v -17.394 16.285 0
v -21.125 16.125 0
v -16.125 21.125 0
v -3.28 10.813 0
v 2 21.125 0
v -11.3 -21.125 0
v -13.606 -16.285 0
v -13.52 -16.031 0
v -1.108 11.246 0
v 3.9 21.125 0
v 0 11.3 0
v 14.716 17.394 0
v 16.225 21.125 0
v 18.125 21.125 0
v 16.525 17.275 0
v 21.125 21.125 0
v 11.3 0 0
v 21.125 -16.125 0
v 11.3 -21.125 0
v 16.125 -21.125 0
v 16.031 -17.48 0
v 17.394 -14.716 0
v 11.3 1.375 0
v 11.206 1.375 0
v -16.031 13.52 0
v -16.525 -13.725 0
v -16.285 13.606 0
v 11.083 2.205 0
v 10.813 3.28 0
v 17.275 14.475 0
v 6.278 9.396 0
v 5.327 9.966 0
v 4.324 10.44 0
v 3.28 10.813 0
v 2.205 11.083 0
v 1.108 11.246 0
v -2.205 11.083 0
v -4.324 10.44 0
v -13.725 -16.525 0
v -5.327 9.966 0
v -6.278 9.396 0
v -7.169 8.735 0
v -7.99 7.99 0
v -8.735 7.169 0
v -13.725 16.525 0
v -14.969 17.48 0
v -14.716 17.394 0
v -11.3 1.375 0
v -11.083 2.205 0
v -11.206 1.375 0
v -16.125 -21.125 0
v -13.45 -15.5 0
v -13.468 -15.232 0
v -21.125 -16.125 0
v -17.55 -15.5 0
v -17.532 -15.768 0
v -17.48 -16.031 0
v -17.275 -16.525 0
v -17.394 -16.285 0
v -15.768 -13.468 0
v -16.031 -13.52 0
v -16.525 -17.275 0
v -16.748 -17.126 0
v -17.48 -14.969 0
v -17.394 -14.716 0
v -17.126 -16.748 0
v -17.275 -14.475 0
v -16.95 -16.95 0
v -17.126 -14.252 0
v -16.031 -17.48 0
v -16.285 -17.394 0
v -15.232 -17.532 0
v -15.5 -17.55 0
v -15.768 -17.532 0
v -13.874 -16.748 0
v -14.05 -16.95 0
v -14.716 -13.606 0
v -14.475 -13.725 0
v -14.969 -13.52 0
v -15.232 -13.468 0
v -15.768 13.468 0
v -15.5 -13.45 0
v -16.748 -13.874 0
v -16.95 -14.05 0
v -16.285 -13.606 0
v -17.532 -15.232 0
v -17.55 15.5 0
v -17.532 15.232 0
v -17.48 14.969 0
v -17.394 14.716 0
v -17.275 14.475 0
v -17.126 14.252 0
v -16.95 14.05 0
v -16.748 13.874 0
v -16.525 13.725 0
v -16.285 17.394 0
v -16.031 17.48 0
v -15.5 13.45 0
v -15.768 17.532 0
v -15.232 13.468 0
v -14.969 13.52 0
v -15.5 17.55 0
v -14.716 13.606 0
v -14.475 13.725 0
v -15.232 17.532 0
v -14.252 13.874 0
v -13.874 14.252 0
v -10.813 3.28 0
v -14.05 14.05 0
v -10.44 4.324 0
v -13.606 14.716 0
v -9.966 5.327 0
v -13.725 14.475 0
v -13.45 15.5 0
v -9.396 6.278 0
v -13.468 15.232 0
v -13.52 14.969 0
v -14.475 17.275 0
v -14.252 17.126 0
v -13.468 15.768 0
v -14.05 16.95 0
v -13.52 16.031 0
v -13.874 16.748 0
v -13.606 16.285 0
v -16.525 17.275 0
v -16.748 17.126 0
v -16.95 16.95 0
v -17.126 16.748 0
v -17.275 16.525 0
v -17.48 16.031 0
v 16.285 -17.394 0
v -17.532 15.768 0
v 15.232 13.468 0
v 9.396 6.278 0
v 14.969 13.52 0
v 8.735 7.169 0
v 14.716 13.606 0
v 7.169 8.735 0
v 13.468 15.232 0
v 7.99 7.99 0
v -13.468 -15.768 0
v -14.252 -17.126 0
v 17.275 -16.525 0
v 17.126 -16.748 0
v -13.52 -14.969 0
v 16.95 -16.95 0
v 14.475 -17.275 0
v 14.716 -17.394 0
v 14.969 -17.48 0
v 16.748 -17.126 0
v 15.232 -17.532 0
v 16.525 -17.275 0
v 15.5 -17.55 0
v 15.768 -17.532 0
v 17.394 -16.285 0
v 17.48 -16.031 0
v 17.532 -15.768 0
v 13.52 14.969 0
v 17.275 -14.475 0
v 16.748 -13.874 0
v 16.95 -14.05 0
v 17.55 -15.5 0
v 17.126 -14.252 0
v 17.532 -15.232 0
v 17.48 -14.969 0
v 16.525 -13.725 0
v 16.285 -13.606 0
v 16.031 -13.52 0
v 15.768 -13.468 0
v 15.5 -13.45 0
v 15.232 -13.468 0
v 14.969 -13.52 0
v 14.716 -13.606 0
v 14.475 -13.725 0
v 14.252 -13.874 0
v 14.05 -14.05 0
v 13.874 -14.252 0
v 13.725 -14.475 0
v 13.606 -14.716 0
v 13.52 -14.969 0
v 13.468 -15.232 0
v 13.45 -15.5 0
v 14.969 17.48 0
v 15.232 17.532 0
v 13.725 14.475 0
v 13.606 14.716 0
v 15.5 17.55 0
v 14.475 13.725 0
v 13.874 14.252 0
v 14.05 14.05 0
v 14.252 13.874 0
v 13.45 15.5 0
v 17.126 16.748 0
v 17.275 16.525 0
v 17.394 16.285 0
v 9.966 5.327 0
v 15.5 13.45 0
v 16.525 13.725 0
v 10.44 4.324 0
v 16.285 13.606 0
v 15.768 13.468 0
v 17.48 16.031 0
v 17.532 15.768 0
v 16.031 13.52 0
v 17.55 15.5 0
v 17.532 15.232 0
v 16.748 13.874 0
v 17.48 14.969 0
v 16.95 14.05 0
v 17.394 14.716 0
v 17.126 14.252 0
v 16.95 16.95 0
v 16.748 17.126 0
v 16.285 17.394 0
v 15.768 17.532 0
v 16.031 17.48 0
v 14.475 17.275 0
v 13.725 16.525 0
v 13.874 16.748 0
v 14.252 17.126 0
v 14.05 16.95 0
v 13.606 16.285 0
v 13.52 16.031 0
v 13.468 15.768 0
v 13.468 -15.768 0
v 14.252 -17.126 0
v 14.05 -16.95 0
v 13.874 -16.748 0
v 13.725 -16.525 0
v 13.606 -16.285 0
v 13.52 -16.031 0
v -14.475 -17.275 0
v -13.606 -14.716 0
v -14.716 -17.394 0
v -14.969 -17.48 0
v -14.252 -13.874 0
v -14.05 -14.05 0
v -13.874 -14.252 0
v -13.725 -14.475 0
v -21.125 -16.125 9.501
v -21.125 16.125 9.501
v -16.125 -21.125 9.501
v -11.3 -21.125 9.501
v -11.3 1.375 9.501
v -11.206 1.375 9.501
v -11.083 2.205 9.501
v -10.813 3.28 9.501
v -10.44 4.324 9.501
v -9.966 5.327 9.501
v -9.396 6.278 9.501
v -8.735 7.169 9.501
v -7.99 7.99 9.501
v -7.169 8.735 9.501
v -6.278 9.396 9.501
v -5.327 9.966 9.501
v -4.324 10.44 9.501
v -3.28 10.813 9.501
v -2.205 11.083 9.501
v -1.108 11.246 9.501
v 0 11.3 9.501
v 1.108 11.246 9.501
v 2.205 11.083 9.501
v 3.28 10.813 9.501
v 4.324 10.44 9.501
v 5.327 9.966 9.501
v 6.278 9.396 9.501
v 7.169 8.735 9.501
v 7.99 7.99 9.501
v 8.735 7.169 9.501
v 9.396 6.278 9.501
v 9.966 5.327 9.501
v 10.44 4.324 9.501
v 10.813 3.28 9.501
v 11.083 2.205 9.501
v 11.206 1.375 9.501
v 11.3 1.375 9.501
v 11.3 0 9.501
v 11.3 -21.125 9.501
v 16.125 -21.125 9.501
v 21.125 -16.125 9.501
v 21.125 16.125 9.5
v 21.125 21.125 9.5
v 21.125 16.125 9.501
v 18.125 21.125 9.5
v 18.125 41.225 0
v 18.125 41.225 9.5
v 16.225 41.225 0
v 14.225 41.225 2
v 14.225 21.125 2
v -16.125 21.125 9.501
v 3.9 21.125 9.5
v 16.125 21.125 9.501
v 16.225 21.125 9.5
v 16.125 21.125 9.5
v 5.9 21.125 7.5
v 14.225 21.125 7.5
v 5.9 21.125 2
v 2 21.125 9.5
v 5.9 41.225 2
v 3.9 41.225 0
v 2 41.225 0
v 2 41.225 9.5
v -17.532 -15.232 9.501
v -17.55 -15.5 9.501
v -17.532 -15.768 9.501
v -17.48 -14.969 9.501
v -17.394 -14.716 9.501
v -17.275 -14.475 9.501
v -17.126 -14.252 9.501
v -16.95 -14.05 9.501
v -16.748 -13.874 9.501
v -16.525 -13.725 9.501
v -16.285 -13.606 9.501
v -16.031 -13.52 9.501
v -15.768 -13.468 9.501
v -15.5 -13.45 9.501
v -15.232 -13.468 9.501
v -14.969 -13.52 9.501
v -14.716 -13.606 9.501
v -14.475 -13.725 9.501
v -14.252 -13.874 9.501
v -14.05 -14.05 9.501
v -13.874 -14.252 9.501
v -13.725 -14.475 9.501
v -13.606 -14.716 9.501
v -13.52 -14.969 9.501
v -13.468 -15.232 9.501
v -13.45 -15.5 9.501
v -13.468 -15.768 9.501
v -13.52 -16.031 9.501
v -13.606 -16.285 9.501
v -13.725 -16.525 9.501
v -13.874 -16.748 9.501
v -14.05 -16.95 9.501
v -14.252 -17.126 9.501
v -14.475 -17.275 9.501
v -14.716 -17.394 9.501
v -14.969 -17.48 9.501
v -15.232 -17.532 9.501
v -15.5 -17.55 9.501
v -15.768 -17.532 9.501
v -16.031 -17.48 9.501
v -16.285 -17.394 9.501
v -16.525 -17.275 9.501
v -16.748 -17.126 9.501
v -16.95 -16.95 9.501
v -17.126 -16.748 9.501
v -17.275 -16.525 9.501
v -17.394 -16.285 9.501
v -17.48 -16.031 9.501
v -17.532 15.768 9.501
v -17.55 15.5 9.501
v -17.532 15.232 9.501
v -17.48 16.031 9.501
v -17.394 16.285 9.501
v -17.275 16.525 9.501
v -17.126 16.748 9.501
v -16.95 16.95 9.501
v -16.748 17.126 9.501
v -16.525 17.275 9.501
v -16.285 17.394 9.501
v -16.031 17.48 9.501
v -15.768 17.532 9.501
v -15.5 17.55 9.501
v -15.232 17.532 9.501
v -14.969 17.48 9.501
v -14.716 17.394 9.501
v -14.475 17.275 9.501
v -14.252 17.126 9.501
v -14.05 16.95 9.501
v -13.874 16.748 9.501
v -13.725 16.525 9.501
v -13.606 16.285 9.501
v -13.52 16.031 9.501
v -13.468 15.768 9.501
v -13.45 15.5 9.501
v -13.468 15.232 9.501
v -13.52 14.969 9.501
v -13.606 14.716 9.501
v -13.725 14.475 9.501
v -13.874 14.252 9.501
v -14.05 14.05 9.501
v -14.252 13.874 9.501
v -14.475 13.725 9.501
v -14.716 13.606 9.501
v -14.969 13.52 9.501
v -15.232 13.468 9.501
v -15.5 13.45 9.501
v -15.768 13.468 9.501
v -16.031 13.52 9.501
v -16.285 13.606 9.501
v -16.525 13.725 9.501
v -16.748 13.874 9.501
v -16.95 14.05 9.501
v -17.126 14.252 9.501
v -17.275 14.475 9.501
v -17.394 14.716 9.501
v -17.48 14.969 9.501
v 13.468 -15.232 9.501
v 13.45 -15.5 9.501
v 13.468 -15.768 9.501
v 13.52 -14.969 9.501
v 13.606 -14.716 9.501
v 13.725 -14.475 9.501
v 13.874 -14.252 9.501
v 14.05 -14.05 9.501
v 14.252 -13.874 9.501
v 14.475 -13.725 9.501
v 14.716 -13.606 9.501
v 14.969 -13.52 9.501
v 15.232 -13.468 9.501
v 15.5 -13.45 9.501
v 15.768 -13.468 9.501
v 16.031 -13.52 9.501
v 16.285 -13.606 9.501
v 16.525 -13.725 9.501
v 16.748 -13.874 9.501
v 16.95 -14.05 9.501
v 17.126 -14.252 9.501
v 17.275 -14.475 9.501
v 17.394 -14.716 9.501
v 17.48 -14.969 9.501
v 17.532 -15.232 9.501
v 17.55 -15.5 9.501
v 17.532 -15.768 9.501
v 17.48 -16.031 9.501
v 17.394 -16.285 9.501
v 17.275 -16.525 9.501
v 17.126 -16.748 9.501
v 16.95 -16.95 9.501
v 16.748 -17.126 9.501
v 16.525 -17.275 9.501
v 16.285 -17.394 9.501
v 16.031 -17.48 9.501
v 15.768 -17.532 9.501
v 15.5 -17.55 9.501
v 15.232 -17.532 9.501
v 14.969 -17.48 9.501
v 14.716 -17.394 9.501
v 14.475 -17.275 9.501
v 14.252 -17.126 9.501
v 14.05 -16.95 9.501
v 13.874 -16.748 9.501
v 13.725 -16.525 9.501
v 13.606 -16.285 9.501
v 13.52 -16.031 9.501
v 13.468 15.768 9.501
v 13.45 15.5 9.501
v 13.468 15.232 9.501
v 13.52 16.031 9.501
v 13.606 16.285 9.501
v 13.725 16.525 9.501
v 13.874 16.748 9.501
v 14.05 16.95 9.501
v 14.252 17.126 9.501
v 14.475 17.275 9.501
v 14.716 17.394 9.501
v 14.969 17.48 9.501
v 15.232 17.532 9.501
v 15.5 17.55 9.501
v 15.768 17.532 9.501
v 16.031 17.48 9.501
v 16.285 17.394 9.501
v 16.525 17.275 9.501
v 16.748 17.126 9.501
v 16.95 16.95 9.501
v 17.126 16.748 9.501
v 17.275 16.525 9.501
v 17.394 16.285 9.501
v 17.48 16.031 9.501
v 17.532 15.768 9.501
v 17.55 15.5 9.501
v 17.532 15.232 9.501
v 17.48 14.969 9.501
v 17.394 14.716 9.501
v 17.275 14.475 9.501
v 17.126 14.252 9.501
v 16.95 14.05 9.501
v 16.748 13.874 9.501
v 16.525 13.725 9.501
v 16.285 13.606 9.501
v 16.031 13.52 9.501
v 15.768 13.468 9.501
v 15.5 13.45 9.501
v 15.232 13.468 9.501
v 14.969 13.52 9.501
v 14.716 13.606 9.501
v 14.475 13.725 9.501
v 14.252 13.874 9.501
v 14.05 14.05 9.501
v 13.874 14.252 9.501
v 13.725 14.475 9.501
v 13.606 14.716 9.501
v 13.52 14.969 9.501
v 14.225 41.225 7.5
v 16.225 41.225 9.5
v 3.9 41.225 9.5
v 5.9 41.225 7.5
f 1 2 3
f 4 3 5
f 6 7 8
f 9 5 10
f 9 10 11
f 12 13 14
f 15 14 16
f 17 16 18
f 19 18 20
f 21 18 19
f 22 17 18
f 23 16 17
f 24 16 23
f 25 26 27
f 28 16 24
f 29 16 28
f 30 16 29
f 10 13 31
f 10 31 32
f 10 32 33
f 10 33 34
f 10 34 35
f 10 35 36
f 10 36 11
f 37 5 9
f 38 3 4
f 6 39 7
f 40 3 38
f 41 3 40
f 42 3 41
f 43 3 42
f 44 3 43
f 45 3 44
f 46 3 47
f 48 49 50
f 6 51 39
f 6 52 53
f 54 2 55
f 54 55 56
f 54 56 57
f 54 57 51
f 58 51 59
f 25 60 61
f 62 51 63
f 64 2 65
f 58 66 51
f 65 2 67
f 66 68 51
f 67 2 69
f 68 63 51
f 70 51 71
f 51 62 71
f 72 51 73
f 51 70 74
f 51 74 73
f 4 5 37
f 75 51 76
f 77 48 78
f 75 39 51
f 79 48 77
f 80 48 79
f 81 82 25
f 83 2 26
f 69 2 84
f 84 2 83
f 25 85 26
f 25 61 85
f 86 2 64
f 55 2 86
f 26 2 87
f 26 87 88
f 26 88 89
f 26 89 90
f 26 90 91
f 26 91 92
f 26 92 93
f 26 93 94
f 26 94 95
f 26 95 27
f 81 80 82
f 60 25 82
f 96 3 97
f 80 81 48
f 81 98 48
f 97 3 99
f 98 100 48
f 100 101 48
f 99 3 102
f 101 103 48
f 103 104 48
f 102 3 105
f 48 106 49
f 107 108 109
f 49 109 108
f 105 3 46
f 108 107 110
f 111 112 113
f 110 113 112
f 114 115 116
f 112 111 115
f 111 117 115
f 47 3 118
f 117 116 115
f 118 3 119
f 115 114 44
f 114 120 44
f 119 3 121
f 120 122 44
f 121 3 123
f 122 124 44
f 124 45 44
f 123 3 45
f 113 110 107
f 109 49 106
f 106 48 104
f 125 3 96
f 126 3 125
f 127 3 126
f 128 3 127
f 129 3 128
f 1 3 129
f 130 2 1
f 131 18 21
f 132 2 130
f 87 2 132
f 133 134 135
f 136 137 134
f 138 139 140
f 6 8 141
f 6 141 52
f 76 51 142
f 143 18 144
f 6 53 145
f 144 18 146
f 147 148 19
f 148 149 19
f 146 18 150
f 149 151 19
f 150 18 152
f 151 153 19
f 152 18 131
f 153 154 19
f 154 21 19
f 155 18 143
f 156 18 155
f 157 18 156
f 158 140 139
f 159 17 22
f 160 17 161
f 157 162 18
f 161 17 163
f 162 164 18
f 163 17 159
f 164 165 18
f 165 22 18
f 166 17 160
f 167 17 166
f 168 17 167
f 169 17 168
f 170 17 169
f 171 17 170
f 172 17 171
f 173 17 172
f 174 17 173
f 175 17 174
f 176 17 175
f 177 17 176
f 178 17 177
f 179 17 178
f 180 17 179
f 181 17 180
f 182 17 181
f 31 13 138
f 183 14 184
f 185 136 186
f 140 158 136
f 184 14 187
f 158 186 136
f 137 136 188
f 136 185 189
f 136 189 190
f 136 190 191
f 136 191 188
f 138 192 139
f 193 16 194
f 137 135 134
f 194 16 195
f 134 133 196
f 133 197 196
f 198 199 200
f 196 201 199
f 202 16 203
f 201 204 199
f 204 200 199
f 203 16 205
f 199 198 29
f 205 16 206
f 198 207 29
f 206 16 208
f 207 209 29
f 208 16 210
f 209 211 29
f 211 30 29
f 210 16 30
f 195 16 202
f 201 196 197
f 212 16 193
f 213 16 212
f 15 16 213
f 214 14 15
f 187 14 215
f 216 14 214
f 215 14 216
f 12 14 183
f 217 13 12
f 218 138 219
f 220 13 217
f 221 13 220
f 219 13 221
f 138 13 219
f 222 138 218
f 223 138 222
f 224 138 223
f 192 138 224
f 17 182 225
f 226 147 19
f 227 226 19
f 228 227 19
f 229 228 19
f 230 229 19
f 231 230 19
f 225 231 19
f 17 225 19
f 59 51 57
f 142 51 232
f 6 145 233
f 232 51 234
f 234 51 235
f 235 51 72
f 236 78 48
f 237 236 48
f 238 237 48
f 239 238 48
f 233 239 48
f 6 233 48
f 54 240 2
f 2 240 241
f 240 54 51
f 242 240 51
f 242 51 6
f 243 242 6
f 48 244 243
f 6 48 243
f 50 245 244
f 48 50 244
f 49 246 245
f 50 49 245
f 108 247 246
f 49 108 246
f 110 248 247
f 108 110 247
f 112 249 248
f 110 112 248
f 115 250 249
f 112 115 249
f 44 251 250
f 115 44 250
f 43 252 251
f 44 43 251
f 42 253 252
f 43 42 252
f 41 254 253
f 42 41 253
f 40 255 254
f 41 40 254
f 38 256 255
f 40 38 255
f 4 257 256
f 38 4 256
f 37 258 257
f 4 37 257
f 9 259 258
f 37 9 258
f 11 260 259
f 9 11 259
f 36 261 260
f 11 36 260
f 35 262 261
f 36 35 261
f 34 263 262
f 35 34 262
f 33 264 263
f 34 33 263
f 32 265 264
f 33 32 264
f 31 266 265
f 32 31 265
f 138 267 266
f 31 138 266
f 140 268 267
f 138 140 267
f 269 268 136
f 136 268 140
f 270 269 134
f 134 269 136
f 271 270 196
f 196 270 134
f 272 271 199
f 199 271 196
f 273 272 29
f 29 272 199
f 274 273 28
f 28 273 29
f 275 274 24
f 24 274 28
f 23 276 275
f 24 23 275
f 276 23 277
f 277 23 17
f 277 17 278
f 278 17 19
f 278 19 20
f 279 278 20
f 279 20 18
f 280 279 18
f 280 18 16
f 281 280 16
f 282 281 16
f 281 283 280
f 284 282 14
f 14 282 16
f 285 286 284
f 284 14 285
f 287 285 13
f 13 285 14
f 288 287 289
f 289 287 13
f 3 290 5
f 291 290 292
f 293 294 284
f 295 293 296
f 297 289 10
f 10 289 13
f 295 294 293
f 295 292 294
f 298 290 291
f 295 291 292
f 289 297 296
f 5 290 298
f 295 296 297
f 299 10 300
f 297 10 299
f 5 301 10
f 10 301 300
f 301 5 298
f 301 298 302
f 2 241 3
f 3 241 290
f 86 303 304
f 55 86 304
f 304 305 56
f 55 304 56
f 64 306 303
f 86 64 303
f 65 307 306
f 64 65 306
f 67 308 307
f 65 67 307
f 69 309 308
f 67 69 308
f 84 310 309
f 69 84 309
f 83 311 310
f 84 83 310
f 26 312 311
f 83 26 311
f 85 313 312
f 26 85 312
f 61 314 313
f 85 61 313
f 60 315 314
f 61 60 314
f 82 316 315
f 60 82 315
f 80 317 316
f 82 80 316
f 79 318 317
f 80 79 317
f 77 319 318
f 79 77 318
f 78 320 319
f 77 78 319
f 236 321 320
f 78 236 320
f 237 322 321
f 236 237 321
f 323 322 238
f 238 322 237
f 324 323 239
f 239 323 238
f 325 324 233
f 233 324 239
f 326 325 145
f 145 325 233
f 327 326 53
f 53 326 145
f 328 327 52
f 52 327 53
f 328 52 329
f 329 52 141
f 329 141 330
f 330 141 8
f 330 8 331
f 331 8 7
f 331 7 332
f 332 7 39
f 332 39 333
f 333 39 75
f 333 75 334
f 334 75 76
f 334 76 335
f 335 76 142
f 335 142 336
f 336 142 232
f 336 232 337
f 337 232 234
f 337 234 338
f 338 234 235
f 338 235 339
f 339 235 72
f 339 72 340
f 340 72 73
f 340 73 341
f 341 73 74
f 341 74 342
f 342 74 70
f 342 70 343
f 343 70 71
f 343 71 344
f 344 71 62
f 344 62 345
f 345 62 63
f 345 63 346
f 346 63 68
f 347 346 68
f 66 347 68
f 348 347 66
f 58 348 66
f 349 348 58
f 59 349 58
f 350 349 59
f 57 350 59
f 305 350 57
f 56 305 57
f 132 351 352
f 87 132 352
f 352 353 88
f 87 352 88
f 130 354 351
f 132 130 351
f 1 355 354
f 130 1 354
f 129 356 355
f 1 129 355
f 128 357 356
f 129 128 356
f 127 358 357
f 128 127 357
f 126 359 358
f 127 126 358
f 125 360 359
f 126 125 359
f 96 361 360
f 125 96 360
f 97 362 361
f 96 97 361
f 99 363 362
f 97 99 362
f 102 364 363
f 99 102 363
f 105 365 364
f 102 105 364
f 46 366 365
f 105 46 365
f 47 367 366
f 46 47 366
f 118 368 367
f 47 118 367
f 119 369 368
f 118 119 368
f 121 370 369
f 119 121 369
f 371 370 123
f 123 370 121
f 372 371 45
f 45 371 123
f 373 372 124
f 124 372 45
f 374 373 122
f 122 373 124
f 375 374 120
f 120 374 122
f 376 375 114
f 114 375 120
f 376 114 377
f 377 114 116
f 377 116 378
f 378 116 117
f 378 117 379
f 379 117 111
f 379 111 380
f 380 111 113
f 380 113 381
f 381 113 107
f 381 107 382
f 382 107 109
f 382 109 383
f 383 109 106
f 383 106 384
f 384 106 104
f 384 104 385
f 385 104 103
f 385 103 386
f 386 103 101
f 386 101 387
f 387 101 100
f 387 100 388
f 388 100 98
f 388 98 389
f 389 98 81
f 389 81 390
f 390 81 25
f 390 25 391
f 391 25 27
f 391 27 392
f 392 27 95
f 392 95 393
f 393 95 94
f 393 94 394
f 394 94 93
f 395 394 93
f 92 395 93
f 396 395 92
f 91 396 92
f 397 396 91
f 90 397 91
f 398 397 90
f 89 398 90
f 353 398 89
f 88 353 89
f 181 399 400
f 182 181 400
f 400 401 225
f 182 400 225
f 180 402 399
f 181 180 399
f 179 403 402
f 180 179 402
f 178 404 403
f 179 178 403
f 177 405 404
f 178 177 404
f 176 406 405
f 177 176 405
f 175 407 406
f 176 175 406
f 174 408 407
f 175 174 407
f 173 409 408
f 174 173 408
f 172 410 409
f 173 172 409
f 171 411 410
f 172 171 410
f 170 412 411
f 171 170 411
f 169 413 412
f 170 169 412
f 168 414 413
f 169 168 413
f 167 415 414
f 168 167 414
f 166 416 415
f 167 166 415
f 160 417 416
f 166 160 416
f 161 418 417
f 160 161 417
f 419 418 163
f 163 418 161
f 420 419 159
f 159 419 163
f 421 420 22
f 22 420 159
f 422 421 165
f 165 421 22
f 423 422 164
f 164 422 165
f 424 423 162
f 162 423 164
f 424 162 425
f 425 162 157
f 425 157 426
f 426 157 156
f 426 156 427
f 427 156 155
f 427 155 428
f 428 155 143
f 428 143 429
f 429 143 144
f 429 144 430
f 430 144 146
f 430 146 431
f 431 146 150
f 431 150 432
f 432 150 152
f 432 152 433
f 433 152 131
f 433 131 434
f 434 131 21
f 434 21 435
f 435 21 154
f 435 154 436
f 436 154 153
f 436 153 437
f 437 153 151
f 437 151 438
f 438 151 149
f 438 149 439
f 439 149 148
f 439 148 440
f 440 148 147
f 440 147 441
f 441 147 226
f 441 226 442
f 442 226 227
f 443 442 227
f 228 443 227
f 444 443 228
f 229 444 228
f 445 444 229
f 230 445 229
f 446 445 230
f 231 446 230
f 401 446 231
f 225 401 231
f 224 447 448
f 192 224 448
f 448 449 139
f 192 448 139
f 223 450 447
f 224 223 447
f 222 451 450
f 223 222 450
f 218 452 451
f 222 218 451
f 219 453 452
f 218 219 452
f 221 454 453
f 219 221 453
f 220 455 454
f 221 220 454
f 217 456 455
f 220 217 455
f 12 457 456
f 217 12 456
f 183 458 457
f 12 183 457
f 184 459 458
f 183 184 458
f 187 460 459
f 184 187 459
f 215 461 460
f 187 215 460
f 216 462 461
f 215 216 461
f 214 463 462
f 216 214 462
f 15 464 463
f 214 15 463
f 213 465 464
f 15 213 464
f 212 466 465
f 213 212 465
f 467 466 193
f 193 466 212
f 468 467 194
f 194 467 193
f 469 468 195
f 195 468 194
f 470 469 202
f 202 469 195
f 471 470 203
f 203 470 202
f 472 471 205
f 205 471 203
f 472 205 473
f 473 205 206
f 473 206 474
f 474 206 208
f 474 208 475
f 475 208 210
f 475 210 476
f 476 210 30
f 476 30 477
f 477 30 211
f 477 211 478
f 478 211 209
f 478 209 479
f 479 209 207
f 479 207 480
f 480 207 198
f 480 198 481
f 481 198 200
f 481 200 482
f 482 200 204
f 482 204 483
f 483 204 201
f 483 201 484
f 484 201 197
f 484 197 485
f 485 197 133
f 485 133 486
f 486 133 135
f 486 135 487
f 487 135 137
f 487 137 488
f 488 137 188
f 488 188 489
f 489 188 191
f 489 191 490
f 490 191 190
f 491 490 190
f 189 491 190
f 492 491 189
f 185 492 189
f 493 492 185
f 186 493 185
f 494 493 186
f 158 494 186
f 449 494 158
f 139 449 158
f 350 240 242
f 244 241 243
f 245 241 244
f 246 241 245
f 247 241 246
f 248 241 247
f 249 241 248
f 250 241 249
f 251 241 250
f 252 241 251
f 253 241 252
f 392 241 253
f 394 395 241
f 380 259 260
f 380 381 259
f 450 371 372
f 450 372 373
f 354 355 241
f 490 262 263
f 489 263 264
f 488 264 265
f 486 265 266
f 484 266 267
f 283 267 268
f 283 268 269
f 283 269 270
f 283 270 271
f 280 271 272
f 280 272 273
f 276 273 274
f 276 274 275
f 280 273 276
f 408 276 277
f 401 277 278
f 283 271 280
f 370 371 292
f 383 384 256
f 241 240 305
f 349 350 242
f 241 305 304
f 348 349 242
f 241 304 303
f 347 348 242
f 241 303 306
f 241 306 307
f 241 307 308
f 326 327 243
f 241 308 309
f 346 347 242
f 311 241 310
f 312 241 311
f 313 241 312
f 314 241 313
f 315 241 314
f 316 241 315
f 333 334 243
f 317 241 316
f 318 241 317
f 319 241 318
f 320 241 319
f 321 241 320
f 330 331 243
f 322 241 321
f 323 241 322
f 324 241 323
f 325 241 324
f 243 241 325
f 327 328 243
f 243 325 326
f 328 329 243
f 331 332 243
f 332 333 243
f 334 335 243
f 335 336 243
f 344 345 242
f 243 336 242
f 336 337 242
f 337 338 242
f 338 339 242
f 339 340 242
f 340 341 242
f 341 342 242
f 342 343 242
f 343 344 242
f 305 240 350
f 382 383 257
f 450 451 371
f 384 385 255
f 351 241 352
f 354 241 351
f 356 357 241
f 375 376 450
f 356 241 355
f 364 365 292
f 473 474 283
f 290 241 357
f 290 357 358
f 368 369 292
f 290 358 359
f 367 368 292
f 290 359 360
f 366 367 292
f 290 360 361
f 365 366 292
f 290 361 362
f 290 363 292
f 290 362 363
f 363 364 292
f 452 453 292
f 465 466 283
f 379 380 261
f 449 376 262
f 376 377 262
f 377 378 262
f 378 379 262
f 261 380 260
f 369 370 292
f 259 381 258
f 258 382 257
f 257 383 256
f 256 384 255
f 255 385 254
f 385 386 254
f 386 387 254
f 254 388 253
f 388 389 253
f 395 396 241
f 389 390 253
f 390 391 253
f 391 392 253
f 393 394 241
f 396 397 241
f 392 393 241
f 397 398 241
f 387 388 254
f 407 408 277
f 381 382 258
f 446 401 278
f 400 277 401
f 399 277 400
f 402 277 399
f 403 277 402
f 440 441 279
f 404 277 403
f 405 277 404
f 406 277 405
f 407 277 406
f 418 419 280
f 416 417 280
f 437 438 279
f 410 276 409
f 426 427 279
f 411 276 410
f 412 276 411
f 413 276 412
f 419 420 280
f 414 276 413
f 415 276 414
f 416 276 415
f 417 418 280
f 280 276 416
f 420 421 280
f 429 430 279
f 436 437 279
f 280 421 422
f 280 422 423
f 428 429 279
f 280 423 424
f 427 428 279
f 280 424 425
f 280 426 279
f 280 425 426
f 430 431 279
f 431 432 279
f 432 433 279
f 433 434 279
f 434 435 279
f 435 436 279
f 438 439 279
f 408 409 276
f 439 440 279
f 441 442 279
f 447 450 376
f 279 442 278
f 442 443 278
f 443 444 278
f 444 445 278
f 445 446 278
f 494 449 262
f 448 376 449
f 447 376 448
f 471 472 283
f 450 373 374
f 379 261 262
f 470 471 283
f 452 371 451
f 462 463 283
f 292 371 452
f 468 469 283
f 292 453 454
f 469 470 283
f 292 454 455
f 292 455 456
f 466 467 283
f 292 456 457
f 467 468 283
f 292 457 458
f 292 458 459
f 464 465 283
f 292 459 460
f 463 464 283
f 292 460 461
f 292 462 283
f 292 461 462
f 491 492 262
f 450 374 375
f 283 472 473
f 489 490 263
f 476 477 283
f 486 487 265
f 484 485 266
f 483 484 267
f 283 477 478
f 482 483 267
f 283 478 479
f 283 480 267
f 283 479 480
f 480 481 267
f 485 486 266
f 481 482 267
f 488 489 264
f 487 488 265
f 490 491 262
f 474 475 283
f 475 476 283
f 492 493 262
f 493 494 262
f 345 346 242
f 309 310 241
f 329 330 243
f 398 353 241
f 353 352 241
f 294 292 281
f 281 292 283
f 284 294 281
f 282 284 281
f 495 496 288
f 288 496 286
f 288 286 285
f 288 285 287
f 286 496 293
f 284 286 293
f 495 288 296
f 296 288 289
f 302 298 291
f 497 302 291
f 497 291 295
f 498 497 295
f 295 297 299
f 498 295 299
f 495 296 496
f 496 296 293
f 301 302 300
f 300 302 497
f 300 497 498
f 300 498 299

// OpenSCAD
// file: scad/tapercube.scad
module tapercube(width=10, height=10, depth=10, taper=3.0) {
  plane = 0.001;
  hull() {
    translate([taper/2,taper/2,0])
      cube([width-taper, height-taper, plane]);
    translate([0,0,taper/2]) {
      translate([0,taper/2])
        cube([width, height-taper, plane]);
      translate([taper/2,0])
        cube([width-taper, height, plane]);
    }

    translate([taper/2,taper/2,depth-plane])
      cube([width-taper, height-taper, plane]);
    translate([0,0,depth-taper/2]) {
      translate([0,taper/2])
        cube([width, height-taper, plane]);
      translate([taper/2,0])
        cube([width-taper, height, plane]);
    }
  }
}

module cornerless_cube(width=10, height=10, depth=10, taper=3.0) {
  plane = 0.001;
  hull() {
    translate([0,taper/2])
      cube([width, height-taper, plane]);
    translate([taper/2,0])
      cube([width-taper, height, plane]);

    translate([0,0,depth]) {
      translate([0,taper/2])
        cube([width, height-taper, plane]);
      translate([taper/2,0])
        cube([width-taper, height, plane]);
    }
  }
}
// main file
include <scad/tapercube.scad>;

long=100;
shim=0.1;
fudge = 0.3;

motor_width = 42.25;
motor_mount_ring_r = 11.0 + fudge;
motor_mount_hole_r = 1.75 + fudge;
motor_mount_height = 9.5;
motor_mount_opening = 20;
motor_mount_opening_offset = 10.0+fudge;
motor_dist_between_mount_holes = 31;

leg_bolt_r = 3.0+fudge;
leg_bolt_head_r = 4.5+fudge;
leg_bolt_head_seat = 2.5;
leg_extra = 30.0;
leg_extra_bottom = 53.0;
leg_bottom_2nd_hole = 16.0;
leg_height = 13.5;

module motor_mount_holes() {
  d = motor_dist_between_mount_holes;
  r = sqrt(d*d*2)/2;
  for (theta=[45,135,225,315])
    translate([cos(theta)*r, sin(theta)*r])
      cylinder(r=motor_mount_hole_r, h=long, center=true, $fn = 48);
}

module bolt_neg(shaft_height, head_height) {
  // shaft of bolt
  translate([0, 0, -shaft_height])
    cylinder(r=leg_bolt_r, h=shaft_height+shim, $fn=48);
  // head of bolt
  cylinder(r=leg_bolt_head_r, h=head_height, $fn=48);
}

module protrusion(w, h, d, shave=2) {
  // cube([w, h, d]);
  hull() {
    translate([0, 0, 0]) {
      cube([w-shave, h, shim]);
      translate([0, shave])
        cube([w, h-shave*2, shim]);
    }

    translate([0, 0, d]) {
      cube([w-shave, h, shim]);
      translate([0, shave])
        cube([w, h-shave*2, shim]);
    }
  }
}

module motor_mount_pos() {
  union() {
    cornerless_cube(motor_width, motor_width, motor_mount_height, 10.0);
    translate([motor_width/4*3, motor_width/4*3])
      cube([motor_width/4, motor_width/4, motor_mount_height]);

    translate([motor_width/2, motor_width/2]) {

      // Protrusion that slides into makerslide (top)
      translate([2, motor_width/2, motor_mount_height])
        rotate([270, 0, 0])
          protrusion(3.9, motor_mount_height, 20);

      // Protrusion that slides into makerslide (bottom)
      translate([motor_width/2 - 4 - 3 + 4, motor_width/2])
        rotate([270, 180, 0])
          protrusion(3.9, motor_mount_height, 20);

      // translate([motor_mount_opening/2+motor_mount_opening_offset, 4, leg_height])
      //   rotate([0, 90, 0])
      //     cornerless_cube(leg_height, leg_extra_bottom, motor_mount_height, 3.0);
    }
  }
}

module motor_mount_neg() {
  translate([motor_width/2, motor_width/2]) {
    motor_mount_holes();

    translate([0, 0, -shim]) {
      // Hole in center for motor's protruding cylinder
      cylinder(r=motor_mount_ring_r, h=long, $fn = 64);

      // Remove back portion so that screwdriver can access MXL pulley
      translate([-motor_mount_ring_r, -motor_width/2-shim])
        cube([motor_mount_ring_r*2, motor_mount_ring_r*2, motor_mount_height+shim*2]);

      // U Legs
      // translate([-motor_mount_opening/2+motor_mount_opening_offset, 0]) {
      //   translate([-motor_mount_height, motor_mount_ring_r, leg_height]) {
      //     rotate([0, 90, 0]) {
      //       translate([0, 0, motor_mount_opening + motor_mount_height*2 - leg_bolt_head_seat]) {
      //         translate([leg_height/2, leg_extra-leg_bolt_r-5])
      //           bolt_neg(motor_mount_height, motor_mount_height);
      //         translate([leg_height/2, leg_extra-leg_bolt_r-5 + leg_bottom_2nd_hole])
      //           bolt_neg(motor_mount_height, motor_mount_height);
      //       }
      //     }
      //   }
      // }
    }
  }
}
module motor_mount() {
  translate([-motor_width/2, -motor_width/2]) {
    difference() {
      motor_mount_pos();
      motor_mount_neg();
    }
  }  
}

motor_mount();

// protrusion(4, motor_mount_height, 20);
